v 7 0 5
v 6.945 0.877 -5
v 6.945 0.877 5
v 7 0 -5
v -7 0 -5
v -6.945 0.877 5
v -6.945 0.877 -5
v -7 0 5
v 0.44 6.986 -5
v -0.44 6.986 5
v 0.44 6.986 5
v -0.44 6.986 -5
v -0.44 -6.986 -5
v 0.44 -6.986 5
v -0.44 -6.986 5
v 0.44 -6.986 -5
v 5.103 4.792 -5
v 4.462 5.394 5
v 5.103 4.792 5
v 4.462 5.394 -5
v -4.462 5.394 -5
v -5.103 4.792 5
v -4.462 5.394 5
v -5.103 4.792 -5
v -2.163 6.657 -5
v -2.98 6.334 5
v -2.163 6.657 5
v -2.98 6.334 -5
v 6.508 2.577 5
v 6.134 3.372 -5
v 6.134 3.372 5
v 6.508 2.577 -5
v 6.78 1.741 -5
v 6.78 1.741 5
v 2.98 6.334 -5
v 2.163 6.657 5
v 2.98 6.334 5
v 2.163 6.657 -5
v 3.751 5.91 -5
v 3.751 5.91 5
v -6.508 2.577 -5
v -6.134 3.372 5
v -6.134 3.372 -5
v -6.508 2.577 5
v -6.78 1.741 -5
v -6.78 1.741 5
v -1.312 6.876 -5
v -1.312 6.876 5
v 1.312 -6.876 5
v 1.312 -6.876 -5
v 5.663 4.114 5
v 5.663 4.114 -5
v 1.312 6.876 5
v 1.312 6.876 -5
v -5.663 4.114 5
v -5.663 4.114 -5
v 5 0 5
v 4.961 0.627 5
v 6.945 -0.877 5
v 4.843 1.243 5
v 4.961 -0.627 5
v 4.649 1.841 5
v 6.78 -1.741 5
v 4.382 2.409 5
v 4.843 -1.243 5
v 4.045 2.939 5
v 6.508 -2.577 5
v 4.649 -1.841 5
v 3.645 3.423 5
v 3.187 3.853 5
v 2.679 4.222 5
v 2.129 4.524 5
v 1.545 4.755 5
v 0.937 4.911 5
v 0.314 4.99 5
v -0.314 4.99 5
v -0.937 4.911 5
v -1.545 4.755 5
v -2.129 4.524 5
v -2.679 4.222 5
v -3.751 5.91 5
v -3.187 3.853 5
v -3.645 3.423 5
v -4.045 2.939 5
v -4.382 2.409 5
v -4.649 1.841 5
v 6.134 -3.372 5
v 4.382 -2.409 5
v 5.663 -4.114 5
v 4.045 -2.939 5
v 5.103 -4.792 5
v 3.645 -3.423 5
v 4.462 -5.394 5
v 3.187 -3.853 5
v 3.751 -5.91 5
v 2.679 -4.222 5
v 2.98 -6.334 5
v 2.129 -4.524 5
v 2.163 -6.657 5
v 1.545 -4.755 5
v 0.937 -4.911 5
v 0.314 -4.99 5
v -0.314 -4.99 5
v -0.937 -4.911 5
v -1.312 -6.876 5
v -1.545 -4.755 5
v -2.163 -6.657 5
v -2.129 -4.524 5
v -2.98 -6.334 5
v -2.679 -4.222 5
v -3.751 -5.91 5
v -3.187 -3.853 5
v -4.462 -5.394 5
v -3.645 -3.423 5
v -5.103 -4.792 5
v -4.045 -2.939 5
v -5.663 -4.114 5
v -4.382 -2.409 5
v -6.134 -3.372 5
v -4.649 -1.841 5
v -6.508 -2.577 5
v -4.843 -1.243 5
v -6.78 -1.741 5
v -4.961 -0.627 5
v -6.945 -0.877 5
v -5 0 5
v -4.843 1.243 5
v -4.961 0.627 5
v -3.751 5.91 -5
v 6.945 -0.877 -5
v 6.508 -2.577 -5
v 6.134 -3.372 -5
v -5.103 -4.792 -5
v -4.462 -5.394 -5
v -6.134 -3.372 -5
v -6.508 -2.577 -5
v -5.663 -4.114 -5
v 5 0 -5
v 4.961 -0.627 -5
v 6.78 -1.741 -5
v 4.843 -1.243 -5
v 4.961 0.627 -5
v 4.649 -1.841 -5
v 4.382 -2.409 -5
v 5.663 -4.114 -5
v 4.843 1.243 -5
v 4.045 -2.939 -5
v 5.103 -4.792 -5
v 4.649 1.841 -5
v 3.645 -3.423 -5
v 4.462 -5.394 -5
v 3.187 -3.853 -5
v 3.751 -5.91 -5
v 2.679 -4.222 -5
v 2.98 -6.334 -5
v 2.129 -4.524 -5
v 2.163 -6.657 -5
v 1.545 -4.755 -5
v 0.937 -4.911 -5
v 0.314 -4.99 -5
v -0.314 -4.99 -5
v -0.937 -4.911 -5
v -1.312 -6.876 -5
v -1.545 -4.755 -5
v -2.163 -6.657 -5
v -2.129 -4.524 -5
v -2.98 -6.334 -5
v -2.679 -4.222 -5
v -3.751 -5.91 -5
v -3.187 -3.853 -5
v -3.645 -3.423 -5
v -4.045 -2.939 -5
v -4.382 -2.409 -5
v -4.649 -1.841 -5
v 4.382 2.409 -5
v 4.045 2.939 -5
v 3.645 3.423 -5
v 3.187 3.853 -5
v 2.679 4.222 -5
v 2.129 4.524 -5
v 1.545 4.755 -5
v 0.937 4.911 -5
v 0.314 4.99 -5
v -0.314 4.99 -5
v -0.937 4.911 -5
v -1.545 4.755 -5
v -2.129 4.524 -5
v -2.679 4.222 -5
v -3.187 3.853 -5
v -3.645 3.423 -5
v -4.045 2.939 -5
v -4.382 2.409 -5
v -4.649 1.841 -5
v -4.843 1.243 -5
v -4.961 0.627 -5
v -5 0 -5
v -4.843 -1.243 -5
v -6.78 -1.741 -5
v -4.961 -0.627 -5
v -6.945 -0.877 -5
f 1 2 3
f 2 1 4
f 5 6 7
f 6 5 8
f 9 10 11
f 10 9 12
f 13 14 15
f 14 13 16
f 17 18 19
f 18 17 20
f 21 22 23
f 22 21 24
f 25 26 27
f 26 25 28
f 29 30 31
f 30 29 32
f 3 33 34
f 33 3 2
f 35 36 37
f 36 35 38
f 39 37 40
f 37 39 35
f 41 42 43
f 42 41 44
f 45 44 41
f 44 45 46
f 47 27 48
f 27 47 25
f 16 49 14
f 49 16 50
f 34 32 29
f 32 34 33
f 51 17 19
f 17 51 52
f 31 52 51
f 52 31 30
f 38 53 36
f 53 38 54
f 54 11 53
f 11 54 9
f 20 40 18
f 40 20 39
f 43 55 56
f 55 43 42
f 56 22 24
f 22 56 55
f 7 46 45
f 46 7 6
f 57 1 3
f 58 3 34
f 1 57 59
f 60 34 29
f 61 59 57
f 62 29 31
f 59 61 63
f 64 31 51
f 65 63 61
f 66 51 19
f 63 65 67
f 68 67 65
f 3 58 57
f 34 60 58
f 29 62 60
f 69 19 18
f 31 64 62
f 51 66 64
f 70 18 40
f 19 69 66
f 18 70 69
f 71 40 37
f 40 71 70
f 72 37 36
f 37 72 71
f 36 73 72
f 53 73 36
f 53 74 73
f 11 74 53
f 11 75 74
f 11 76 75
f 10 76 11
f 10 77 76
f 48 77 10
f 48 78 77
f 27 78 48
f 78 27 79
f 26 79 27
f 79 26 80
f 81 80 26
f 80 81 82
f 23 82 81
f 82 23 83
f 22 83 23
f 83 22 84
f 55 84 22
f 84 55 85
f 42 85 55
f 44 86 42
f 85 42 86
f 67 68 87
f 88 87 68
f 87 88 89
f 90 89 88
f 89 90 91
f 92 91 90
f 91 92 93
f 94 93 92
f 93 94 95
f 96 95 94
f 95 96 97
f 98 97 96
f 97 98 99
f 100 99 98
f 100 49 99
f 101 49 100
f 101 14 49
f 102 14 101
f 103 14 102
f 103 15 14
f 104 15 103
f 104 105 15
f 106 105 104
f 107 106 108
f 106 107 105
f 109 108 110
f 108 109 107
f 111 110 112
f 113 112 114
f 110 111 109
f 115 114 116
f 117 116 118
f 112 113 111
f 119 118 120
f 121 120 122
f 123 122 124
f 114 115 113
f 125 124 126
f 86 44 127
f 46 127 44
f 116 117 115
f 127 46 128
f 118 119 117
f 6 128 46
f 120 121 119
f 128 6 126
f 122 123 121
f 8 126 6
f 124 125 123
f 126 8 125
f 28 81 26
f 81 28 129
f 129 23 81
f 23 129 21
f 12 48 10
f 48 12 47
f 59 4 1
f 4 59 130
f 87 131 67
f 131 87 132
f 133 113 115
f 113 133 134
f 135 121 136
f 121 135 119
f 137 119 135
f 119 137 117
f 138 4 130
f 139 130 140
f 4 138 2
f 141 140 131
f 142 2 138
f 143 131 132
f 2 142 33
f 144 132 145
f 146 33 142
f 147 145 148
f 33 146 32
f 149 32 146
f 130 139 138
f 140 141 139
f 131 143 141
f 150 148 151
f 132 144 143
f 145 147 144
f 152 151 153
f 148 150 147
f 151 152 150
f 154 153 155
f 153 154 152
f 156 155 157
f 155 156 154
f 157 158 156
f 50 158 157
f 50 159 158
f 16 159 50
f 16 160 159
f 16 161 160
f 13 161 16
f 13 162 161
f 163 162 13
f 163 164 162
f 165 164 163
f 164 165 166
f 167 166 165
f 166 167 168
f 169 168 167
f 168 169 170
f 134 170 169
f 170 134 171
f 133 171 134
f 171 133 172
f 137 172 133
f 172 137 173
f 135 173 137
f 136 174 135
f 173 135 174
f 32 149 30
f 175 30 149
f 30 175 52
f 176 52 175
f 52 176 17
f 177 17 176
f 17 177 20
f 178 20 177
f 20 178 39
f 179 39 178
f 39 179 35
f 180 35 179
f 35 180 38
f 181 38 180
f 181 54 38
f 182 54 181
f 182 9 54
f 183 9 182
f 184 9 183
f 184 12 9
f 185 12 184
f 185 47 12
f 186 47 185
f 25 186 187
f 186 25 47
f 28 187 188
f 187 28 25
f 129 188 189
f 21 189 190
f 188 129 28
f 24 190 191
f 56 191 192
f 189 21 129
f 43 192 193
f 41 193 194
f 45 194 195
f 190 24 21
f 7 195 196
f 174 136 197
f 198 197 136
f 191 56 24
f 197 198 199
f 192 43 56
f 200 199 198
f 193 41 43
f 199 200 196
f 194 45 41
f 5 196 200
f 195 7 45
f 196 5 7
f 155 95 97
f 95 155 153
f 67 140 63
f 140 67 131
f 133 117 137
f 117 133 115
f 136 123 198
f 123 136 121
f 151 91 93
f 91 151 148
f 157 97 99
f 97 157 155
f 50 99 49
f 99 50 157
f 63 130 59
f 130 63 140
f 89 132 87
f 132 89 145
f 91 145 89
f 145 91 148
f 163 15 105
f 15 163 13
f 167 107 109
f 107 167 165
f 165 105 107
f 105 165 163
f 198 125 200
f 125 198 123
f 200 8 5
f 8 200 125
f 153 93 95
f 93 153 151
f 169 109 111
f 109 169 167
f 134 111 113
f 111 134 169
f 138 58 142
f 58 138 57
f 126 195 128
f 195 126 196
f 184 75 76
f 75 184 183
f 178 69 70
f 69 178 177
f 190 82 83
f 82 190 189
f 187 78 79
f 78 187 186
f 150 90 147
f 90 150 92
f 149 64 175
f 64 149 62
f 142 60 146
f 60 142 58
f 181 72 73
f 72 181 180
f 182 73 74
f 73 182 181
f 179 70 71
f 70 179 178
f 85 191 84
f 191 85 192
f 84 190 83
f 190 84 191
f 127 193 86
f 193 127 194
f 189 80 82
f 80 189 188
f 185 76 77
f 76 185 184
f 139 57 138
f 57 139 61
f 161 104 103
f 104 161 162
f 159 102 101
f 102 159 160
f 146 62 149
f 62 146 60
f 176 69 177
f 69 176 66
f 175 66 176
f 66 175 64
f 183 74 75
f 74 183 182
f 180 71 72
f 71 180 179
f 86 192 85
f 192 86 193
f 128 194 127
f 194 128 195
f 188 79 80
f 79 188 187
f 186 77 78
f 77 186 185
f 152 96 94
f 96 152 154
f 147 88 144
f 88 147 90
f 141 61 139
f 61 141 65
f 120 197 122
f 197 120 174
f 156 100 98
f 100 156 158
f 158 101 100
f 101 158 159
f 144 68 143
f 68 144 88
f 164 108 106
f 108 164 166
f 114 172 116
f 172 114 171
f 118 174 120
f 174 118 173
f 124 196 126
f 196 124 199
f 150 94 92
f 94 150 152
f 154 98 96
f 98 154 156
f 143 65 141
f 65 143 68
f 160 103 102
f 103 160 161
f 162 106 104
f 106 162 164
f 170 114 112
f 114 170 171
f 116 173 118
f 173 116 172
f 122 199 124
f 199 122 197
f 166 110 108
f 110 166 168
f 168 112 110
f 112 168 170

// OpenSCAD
$fn = 50;


difference() {
	union() {
		translate(v = [0, 0, -5.0000000000]) {
			cylinder(h = 10, r = 7.0000000000);
		}
	}
	union() {
		translate(v = [0, 0, -100.0000000000]) {
			cylinder(h = 200, r = 5);
		}
	}
}
